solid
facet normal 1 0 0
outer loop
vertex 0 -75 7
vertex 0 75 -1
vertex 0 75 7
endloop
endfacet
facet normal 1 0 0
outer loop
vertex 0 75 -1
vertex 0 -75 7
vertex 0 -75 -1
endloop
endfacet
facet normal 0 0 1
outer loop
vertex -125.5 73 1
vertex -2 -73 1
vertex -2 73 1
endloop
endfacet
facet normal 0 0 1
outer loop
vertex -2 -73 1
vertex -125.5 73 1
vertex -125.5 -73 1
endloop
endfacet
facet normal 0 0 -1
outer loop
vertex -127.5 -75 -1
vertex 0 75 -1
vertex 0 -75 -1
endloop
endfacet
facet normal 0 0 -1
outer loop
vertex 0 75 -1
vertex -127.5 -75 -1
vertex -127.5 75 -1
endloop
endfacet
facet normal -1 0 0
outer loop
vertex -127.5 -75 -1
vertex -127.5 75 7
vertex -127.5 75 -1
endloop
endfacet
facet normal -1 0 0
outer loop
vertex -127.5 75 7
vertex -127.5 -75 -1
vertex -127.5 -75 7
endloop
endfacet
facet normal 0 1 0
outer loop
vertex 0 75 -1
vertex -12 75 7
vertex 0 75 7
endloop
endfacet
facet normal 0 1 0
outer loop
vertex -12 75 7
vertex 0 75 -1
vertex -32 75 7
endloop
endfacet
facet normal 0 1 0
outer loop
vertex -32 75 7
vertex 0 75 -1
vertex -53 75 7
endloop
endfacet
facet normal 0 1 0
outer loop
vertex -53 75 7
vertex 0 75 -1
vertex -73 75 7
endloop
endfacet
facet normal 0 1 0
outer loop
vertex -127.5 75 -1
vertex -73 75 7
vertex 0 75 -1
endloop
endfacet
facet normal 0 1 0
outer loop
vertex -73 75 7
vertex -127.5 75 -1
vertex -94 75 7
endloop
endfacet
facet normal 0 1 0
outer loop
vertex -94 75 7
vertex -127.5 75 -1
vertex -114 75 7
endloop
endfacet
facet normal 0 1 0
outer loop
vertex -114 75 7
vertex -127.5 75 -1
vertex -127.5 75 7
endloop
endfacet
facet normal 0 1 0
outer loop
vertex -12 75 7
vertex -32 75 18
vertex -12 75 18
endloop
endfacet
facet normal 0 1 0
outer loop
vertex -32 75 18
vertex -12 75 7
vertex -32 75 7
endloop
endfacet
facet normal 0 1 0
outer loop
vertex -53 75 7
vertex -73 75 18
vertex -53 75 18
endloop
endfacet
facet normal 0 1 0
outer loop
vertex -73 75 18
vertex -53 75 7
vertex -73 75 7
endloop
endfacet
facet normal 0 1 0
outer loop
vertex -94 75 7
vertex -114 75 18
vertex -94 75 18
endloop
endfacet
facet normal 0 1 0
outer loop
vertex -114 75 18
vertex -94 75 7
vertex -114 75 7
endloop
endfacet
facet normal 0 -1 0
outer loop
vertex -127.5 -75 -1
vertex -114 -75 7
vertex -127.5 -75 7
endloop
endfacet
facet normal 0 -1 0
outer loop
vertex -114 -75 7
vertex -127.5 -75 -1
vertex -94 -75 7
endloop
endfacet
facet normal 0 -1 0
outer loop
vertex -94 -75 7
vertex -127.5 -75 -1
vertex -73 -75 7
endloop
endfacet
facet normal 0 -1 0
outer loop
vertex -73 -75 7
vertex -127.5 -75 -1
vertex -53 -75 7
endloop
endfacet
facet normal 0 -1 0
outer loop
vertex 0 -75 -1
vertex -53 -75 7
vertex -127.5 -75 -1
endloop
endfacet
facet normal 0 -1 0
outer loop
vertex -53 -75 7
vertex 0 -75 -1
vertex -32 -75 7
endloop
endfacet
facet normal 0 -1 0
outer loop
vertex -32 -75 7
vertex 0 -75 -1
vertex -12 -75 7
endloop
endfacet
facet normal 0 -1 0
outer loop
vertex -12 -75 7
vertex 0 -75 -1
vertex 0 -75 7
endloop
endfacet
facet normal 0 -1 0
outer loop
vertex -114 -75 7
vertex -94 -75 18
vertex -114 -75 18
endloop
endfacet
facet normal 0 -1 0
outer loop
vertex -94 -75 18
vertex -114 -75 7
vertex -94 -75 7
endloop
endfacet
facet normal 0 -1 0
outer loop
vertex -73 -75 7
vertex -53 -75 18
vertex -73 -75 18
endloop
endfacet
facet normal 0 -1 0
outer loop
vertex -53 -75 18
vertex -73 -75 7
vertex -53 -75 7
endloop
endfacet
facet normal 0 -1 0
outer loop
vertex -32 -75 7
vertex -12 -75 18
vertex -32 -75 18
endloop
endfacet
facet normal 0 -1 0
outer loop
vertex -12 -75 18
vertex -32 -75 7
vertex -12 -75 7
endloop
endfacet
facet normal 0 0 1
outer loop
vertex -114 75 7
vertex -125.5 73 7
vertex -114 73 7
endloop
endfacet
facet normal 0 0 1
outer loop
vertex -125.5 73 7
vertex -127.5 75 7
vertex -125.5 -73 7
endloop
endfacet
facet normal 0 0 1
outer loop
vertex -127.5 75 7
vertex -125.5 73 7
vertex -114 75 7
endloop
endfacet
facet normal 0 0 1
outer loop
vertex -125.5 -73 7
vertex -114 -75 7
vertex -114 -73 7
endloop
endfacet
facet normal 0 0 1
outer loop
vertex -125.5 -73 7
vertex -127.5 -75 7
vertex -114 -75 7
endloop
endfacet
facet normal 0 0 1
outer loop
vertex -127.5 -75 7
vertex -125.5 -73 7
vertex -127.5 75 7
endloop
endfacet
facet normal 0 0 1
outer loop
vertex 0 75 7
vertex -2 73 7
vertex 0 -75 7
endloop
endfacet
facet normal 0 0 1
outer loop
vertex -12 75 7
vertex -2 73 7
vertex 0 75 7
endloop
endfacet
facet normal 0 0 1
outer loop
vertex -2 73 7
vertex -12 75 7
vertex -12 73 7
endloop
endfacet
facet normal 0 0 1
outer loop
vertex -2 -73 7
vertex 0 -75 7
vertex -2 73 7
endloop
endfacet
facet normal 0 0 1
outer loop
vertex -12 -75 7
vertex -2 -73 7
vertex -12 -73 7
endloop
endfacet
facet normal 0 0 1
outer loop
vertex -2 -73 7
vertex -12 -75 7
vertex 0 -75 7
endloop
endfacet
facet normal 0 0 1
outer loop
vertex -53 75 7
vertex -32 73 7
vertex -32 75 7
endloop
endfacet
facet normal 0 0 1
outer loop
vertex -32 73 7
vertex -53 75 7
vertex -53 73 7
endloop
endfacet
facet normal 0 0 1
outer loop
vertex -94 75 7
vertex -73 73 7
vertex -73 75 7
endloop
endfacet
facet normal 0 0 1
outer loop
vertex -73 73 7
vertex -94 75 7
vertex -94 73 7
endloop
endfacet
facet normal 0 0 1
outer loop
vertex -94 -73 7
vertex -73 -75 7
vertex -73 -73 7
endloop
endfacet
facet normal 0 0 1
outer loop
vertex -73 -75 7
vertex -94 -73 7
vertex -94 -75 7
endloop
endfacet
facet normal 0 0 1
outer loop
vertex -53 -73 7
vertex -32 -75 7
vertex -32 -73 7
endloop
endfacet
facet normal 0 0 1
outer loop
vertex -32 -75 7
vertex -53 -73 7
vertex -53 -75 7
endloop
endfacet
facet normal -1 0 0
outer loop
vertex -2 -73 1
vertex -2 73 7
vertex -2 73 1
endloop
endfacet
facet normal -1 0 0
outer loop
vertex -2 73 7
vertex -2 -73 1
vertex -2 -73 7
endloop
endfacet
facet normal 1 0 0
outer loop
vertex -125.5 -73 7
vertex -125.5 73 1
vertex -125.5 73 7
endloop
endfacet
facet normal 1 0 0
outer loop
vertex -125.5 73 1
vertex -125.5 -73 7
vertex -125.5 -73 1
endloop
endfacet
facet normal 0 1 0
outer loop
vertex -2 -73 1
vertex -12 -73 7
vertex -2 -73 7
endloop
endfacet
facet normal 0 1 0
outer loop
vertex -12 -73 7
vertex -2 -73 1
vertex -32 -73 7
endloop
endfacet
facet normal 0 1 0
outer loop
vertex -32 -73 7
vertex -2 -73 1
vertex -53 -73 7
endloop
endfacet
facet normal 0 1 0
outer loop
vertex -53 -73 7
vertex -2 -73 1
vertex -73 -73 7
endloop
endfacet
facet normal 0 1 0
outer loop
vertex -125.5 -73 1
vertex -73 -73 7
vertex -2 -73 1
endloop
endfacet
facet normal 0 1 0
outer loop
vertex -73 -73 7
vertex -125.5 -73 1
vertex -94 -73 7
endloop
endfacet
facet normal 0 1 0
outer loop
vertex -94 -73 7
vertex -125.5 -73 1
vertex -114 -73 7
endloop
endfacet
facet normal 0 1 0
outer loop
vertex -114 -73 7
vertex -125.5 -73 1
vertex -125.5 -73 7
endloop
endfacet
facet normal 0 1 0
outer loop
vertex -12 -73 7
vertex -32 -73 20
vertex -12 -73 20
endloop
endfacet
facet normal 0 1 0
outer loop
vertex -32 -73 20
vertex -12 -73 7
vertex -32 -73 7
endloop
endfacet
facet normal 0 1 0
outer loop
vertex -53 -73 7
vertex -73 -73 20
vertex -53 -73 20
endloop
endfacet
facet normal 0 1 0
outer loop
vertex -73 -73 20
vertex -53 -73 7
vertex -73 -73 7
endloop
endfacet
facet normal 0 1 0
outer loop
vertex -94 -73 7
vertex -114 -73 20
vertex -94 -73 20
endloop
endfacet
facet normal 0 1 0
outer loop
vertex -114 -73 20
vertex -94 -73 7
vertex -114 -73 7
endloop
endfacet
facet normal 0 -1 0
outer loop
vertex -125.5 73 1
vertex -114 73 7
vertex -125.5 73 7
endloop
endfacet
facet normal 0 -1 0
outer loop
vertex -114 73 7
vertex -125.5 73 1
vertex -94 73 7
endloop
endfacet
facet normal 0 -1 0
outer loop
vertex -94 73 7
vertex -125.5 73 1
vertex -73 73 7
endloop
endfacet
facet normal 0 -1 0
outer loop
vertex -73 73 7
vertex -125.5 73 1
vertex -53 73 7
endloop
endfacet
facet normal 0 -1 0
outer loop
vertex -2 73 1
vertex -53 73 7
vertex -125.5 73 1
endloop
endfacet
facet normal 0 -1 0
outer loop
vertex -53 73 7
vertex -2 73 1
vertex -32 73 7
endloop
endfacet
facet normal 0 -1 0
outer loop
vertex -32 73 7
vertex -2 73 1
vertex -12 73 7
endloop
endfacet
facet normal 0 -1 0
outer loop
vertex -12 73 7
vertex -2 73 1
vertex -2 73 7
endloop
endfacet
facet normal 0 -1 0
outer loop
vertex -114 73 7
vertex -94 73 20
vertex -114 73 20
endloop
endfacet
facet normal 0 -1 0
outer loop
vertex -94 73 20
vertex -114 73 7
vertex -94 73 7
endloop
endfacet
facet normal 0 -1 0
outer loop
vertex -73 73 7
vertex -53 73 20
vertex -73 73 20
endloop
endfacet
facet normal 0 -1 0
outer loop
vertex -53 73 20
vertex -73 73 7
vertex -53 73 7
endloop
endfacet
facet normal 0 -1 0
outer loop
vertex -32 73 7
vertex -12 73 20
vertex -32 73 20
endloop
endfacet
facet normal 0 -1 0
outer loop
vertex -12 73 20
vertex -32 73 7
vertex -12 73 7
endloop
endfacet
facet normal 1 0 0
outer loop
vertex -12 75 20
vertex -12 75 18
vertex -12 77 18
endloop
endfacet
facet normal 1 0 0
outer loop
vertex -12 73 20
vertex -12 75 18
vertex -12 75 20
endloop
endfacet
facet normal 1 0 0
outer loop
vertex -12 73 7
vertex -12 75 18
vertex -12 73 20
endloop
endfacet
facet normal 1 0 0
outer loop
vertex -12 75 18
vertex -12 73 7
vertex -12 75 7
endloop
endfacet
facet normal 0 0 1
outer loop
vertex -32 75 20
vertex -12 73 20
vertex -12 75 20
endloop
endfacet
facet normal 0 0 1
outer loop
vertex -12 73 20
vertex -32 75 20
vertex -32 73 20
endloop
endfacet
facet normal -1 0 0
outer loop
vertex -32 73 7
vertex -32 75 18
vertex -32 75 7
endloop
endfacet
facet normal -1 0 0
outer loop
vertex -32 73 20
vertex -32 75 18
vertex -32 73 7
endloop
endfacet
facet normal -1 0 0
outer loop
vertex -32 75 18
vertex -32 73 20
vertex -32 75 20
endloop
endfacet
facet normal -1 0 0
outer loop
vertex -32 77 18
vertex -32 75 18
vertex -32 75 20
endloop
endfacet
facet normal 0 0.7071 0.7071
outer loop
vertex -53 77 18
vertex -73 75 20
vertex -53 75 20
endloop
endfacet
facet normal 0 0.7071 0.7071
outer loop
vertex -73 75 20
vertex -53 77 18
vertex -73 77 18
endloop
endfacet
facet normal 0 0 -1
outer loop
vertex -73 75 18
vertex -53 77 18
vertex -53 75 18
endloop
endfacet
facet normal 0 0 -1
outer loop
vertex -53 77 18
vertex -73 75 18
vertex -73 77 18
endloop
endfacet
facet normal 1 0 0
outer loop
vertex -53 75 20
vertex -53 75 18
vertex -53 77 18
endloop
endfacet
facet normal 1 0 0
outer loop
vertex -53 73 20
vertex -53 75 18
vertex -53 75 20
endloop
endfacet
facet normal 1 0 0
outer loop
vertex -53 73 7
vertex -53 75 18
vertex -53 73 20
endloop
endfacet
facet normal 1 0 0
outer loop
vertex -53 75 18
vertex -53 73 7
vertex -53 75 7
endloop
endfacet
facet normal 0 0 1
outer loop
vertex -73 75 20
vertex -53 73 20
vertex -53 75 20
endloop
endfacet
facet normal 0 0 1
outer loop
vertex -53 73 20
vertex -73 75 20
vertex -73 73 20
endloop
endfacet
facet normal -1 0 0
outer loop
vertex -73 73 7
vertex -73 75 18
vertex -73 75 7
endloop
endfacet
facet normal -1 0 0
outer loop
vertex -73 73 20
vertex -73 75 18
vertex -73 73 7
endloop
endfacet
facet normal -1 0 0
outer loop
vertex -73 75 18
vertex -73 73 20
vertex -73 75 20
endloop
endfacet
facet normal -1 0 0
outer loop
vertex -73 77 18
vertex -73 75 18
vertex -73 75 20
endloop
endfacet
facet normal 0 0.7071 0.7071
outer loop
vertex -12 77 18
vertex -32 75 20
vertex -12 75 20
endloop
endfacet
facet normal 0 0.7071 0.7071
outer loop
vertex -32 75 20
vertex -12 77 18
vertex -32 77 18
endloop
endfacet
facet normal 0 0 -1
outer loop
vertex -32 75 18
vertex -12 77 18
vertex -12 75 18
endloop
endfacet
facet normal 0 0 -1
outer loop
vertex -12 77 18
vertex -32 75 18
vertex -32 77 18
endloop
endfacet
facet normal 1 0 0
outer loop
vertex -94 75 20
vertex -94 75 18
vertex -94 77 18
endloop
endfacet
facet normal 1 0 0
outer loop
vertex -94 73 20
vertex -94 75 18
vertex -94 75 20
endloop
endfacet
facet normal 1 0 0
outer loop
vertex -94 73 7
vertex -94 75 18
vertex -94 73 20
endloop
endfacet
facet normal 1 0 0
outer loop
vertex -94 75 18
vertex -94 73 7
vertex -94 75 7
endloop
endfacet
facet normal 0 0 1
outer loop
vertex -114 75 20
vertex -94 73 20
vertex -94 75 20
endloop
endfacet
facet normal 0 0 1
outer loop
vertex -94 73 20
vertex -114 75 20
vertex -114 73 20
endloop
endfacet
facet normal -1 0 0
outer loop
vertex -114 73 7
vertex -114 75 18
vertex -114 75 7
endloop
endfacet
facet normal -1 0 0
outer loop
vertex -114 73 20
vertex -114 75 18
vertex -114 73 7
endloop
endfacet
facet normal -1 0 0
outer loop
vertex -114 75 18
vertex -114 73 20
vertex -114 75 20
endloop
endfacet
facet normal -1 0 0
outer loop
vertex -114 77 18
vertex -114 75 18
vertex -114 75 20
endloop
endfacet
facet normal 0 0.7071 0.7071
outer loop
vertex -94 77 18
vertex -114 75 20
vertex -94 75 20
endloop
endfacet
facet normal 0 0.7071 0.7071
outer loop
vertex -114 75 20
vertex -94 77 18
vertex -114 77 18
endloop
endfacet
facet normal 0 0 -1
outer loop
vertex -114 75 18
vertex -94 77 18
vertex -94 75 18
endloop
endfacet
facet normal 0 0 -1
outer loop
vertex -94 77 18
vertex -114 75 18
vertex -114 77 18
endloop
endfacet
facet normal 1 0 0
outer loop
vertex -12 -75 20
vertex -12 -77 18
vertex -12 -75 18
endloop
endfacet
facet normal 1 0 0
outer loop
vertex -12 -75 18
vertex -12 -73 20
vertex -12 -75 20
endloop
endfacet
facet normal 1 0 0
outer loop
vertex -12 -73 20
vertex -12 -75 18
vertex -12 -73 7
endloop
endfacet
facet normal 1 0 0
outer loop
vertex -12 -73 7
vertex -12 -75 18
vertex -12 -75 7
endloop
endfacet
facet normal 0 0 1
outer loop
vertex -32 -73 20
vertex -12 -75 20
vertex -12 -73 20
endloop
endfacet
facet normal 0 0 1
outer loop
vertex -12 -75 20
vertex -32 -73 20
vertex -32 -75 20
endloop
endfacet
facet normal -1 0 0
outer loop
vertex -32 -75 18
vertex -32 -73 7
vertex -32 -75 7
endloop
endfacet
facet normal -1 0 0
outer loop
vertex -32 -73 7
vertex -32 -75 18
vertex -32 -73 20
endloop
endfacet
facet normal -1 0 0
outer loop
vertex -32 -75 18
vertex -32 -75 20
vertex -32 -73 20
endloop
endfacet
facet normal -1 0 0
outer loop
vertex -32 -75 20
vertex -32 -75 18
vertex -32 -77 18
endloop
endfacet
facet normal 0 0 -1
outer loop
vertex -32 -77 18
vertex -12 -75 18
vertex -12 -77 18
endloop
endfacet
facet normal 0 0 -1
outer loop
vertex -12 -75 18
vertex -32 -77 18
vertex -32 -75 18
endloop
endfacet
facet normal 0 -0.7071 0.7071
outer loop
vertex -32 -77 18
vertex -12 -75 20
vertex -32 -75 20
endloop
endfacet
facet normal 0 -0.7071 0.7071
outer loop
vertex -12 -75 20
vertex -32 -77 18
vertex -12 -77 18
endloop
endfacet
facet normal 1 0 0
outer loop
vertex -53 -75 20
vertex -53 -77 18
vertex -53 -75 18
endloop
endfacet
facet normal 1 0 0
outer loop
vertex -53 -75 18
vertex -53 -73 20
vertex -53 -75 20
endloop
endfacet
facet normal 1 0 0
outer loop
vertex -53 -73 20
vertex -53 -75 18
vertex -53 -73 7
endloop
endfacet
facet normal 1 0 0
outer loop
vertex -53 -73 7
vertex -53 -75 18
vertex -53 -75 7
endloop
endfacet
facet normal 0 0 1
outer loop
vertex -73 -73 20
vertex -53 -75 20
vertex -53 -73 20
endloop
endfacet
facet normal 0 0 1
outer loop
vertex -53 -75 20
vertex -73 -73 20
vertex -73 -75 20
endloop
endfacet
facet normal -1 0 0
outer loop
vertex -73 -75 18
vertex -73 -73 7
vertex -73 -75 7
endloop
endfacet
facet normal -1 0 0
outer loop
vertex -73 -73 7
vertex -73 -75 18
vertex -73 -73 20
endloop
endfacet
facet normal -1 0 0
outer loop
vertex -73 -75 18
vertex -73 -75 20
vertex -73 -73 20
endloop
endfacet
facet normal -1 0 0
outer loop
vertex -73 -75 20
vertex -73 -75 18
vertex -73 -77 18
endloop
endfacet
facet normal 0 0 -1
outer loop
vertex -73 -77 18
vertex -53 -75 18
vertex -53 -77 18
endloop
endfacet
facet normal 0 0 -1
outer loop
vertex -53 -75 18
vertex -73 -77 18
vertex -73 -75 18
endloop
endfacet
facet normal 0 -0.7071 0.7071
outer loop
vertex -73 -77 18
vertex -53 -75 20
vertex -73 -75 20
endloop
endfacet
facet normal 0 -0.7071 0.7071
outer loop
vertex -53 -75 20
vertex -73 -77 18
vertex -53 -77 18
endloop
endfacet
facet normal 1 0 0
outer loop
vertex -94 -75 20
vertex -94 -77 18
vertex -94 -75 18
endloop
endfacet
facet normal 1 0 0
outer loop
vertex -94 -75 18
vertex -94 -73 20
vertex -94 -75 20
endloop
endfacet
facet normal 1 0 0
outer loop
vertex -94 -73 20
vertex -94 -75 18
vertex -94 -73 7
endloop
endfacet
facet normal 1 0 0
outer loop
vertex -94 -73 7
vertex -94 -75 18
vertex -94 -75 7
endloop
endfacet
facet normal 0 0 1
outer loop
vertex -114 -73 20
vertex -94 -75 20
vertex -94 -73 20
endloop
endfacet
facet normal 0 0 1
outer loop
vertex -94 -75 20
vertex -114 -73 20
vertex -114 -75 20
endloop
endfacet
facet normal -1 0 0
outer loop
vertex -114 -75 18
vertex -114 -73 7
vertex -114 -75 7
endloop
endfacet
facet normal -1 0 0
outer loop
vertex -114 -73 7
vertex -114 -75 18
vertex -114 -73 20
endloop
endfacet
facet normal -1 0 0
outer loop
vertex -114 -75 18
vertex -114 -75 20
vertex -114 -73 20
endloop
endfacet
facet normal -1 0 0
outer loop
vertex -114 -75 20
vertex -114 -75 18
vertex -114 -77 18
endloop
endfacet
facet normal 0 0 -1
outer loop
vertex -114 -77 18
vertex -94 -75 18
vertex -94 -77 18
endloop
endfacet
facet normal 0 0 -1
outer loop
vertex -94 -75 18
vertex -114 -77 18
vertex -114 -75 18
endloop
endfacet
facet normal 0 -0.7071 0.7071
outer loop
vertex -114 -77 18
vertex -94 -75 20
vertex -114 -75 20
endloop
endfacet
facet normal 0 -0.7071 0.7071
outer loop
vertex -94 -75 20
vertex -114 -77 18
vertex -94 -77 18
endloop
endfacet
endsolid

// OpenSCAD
singleCap = 42.5;
numCaps = 3;

// pared
    translate([-singleCap * numCaps / 2, 0, 0])
        cube([singleCap * numCaps, 150, 2], center = true);

// base 
    translate([-1, 0, 3])
        cube([2, 150, 8], center = true);
        
// techo
    translate([(-singleCap * numCaps) + 1, 0, 3])
        cube([2, 150, 8], center = true);

// flanco izquierdo
    rotate([0, 0, 90])
        translate([-74, singleCap * numCaps / 2, 3])
            cube([2, singleCap * numCaps, 8], center = true);

// flanco derecho
    rotate([0, 0, 90])
        translate([74, singleCap * numCaps / 2, 3])
            cube([2, singleCap * numCaps, 8], center = true);

// traba derecha inferior
    translate([-32, 73, 0])
        cube([20, 2, 20]);
    translate([-32 - 41, 73, 18])
        rotate([90, 0, 90])
            traba();
        
// traba derecha central
    translate([-32 -41, 73, 0])
        cube([20, 2, 20]);
    translate([-32, 73, 18])
        rotate([90, 0, 90])
            traba();

// traba derecha superior
    translate([-32 -41 * 2, 73, 0])
        cube([20, 2, 20]);
    translate([-32 -41 * 2, 73, 18])
        rotate([90, 0, 90])
            traba();

// traba izquierda inferior
    translate([-32, -75, 0])
        cube([20, 2, 20]);
    translate([-12, -73, 18])
        rotate([90, 0, -90])
            traba();
        
// traba izquierda central
    translate([-32 -41, -75, 0])
        cube([20, 2, 20]);
    translate([-10 -43, -73, 18])
        rotate([90, 0, -90])
            traba();

// traba izquierda superior
    translate([-32 -41 * 2, -75, 0])
        cube([20, 2, 20]);
    translate([-10 -42 * 2, -73, 18])
        rotate([90, 0, -90])
            traba();

// traba

module traba()
{
linear_extrude(20)
    polygon([
        [0,0],
        [0,2],
        [2,2],
        [4,0]
    ]);
}
